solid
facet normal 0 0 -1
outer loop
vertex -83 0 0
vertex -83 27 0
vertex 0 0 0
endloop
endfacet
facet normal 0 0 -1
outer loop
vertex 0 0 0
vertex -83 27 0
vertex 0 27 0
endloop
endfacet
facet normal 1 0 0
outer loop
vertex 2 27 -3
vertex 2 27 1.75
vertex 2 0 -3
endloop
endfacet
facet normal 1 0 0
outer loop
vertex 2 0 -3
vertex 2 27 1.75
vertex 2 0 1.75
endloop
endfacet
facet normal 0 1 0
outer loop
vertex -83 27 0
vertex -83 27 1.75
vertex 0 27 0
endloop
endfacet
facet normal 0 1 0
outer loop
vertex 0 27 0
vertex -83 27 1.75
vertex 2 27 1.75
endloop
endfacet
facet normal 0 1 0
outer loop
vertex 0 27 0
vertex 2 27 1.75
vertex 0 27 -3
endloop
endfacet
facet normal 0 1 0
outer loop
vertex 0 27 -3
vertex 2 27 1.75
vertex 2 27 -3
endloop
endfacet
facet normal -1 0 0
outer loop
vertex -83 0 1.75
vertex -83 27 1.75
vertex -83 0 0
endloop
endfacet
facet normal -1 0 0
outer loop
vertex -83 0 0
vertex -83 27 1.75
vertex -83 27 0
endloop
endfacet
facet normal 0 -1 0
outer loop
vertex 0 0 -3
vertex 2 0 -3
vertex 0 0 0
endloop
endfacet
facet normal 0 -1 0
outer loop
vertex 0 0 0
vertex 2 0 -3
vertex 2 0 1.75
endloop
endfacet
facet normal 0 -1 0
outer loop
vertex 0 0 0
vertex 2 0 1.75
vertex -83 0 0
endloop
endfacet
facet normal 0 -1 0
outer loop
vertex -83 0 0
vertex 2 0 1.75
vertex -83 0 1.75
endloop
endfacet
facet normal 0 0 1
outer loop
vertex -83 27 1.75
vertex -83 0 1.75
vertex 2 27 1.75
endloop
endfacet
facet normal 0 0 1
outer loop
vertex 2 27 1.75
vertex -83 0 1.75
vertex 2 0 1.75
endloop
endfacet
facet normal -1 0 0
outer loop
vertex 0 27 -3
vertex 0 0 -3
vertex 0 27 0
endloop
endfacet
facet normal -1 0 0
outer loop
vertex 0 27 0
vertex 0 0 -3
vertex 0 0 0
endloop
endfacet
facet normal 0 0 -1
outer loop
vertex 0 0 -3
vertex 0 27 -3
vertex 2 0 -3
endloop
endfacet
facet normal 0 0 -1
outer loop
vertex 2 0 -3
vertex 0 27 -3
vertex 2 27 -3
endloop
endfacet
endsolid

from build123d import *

# Parameters (mm, degrees)
ESQUISSE1_W          = 83
ESQUISSE1_H          = 27
BOSS_EXTRU_1_DEPTH   = 1.75
D_PLACER_LA_FACE1_BY = 2
ESQUISSE3_W          = 2
ESQUISSE3_H          = 27
BOSS_EXTRU_3_DEPTH   = 3


with BuildPart() as part:
    # Esquisse1 → Boss.-Extru.1 (new body)
    with BuildSketch(Plane.XY):
        with Locations((-41.5, 13.5)):
            Rectangle(ESQUISSE1_W, ESQUISSE1_H)
    extrude(amount=BOSS_EXTRU_1_DEPTH)

    # Déplacer la face1: a face moved outward by 2.0
    extrude(part.faces().sort_by_distance((0, 13.5, 0.875))[0], amount=D_PLACER_LA_FACE1_BY, dir=(1, 0, 0))

    # Esquisse3 → Boss.-Extru.3 (add)
    with BuildSketch(Plane(origin=(0, 0, 0), x_dir=(-1, 0, 0), z_dir=(0, 0, -1))):
        with Locations((-1, 13.5)):
            Rectangle(ESQUISSE3_W, ESQUISSE3_H)
    extrude(amount=BOSS_EXTRU_3_DEPTH)


solid = part.part
